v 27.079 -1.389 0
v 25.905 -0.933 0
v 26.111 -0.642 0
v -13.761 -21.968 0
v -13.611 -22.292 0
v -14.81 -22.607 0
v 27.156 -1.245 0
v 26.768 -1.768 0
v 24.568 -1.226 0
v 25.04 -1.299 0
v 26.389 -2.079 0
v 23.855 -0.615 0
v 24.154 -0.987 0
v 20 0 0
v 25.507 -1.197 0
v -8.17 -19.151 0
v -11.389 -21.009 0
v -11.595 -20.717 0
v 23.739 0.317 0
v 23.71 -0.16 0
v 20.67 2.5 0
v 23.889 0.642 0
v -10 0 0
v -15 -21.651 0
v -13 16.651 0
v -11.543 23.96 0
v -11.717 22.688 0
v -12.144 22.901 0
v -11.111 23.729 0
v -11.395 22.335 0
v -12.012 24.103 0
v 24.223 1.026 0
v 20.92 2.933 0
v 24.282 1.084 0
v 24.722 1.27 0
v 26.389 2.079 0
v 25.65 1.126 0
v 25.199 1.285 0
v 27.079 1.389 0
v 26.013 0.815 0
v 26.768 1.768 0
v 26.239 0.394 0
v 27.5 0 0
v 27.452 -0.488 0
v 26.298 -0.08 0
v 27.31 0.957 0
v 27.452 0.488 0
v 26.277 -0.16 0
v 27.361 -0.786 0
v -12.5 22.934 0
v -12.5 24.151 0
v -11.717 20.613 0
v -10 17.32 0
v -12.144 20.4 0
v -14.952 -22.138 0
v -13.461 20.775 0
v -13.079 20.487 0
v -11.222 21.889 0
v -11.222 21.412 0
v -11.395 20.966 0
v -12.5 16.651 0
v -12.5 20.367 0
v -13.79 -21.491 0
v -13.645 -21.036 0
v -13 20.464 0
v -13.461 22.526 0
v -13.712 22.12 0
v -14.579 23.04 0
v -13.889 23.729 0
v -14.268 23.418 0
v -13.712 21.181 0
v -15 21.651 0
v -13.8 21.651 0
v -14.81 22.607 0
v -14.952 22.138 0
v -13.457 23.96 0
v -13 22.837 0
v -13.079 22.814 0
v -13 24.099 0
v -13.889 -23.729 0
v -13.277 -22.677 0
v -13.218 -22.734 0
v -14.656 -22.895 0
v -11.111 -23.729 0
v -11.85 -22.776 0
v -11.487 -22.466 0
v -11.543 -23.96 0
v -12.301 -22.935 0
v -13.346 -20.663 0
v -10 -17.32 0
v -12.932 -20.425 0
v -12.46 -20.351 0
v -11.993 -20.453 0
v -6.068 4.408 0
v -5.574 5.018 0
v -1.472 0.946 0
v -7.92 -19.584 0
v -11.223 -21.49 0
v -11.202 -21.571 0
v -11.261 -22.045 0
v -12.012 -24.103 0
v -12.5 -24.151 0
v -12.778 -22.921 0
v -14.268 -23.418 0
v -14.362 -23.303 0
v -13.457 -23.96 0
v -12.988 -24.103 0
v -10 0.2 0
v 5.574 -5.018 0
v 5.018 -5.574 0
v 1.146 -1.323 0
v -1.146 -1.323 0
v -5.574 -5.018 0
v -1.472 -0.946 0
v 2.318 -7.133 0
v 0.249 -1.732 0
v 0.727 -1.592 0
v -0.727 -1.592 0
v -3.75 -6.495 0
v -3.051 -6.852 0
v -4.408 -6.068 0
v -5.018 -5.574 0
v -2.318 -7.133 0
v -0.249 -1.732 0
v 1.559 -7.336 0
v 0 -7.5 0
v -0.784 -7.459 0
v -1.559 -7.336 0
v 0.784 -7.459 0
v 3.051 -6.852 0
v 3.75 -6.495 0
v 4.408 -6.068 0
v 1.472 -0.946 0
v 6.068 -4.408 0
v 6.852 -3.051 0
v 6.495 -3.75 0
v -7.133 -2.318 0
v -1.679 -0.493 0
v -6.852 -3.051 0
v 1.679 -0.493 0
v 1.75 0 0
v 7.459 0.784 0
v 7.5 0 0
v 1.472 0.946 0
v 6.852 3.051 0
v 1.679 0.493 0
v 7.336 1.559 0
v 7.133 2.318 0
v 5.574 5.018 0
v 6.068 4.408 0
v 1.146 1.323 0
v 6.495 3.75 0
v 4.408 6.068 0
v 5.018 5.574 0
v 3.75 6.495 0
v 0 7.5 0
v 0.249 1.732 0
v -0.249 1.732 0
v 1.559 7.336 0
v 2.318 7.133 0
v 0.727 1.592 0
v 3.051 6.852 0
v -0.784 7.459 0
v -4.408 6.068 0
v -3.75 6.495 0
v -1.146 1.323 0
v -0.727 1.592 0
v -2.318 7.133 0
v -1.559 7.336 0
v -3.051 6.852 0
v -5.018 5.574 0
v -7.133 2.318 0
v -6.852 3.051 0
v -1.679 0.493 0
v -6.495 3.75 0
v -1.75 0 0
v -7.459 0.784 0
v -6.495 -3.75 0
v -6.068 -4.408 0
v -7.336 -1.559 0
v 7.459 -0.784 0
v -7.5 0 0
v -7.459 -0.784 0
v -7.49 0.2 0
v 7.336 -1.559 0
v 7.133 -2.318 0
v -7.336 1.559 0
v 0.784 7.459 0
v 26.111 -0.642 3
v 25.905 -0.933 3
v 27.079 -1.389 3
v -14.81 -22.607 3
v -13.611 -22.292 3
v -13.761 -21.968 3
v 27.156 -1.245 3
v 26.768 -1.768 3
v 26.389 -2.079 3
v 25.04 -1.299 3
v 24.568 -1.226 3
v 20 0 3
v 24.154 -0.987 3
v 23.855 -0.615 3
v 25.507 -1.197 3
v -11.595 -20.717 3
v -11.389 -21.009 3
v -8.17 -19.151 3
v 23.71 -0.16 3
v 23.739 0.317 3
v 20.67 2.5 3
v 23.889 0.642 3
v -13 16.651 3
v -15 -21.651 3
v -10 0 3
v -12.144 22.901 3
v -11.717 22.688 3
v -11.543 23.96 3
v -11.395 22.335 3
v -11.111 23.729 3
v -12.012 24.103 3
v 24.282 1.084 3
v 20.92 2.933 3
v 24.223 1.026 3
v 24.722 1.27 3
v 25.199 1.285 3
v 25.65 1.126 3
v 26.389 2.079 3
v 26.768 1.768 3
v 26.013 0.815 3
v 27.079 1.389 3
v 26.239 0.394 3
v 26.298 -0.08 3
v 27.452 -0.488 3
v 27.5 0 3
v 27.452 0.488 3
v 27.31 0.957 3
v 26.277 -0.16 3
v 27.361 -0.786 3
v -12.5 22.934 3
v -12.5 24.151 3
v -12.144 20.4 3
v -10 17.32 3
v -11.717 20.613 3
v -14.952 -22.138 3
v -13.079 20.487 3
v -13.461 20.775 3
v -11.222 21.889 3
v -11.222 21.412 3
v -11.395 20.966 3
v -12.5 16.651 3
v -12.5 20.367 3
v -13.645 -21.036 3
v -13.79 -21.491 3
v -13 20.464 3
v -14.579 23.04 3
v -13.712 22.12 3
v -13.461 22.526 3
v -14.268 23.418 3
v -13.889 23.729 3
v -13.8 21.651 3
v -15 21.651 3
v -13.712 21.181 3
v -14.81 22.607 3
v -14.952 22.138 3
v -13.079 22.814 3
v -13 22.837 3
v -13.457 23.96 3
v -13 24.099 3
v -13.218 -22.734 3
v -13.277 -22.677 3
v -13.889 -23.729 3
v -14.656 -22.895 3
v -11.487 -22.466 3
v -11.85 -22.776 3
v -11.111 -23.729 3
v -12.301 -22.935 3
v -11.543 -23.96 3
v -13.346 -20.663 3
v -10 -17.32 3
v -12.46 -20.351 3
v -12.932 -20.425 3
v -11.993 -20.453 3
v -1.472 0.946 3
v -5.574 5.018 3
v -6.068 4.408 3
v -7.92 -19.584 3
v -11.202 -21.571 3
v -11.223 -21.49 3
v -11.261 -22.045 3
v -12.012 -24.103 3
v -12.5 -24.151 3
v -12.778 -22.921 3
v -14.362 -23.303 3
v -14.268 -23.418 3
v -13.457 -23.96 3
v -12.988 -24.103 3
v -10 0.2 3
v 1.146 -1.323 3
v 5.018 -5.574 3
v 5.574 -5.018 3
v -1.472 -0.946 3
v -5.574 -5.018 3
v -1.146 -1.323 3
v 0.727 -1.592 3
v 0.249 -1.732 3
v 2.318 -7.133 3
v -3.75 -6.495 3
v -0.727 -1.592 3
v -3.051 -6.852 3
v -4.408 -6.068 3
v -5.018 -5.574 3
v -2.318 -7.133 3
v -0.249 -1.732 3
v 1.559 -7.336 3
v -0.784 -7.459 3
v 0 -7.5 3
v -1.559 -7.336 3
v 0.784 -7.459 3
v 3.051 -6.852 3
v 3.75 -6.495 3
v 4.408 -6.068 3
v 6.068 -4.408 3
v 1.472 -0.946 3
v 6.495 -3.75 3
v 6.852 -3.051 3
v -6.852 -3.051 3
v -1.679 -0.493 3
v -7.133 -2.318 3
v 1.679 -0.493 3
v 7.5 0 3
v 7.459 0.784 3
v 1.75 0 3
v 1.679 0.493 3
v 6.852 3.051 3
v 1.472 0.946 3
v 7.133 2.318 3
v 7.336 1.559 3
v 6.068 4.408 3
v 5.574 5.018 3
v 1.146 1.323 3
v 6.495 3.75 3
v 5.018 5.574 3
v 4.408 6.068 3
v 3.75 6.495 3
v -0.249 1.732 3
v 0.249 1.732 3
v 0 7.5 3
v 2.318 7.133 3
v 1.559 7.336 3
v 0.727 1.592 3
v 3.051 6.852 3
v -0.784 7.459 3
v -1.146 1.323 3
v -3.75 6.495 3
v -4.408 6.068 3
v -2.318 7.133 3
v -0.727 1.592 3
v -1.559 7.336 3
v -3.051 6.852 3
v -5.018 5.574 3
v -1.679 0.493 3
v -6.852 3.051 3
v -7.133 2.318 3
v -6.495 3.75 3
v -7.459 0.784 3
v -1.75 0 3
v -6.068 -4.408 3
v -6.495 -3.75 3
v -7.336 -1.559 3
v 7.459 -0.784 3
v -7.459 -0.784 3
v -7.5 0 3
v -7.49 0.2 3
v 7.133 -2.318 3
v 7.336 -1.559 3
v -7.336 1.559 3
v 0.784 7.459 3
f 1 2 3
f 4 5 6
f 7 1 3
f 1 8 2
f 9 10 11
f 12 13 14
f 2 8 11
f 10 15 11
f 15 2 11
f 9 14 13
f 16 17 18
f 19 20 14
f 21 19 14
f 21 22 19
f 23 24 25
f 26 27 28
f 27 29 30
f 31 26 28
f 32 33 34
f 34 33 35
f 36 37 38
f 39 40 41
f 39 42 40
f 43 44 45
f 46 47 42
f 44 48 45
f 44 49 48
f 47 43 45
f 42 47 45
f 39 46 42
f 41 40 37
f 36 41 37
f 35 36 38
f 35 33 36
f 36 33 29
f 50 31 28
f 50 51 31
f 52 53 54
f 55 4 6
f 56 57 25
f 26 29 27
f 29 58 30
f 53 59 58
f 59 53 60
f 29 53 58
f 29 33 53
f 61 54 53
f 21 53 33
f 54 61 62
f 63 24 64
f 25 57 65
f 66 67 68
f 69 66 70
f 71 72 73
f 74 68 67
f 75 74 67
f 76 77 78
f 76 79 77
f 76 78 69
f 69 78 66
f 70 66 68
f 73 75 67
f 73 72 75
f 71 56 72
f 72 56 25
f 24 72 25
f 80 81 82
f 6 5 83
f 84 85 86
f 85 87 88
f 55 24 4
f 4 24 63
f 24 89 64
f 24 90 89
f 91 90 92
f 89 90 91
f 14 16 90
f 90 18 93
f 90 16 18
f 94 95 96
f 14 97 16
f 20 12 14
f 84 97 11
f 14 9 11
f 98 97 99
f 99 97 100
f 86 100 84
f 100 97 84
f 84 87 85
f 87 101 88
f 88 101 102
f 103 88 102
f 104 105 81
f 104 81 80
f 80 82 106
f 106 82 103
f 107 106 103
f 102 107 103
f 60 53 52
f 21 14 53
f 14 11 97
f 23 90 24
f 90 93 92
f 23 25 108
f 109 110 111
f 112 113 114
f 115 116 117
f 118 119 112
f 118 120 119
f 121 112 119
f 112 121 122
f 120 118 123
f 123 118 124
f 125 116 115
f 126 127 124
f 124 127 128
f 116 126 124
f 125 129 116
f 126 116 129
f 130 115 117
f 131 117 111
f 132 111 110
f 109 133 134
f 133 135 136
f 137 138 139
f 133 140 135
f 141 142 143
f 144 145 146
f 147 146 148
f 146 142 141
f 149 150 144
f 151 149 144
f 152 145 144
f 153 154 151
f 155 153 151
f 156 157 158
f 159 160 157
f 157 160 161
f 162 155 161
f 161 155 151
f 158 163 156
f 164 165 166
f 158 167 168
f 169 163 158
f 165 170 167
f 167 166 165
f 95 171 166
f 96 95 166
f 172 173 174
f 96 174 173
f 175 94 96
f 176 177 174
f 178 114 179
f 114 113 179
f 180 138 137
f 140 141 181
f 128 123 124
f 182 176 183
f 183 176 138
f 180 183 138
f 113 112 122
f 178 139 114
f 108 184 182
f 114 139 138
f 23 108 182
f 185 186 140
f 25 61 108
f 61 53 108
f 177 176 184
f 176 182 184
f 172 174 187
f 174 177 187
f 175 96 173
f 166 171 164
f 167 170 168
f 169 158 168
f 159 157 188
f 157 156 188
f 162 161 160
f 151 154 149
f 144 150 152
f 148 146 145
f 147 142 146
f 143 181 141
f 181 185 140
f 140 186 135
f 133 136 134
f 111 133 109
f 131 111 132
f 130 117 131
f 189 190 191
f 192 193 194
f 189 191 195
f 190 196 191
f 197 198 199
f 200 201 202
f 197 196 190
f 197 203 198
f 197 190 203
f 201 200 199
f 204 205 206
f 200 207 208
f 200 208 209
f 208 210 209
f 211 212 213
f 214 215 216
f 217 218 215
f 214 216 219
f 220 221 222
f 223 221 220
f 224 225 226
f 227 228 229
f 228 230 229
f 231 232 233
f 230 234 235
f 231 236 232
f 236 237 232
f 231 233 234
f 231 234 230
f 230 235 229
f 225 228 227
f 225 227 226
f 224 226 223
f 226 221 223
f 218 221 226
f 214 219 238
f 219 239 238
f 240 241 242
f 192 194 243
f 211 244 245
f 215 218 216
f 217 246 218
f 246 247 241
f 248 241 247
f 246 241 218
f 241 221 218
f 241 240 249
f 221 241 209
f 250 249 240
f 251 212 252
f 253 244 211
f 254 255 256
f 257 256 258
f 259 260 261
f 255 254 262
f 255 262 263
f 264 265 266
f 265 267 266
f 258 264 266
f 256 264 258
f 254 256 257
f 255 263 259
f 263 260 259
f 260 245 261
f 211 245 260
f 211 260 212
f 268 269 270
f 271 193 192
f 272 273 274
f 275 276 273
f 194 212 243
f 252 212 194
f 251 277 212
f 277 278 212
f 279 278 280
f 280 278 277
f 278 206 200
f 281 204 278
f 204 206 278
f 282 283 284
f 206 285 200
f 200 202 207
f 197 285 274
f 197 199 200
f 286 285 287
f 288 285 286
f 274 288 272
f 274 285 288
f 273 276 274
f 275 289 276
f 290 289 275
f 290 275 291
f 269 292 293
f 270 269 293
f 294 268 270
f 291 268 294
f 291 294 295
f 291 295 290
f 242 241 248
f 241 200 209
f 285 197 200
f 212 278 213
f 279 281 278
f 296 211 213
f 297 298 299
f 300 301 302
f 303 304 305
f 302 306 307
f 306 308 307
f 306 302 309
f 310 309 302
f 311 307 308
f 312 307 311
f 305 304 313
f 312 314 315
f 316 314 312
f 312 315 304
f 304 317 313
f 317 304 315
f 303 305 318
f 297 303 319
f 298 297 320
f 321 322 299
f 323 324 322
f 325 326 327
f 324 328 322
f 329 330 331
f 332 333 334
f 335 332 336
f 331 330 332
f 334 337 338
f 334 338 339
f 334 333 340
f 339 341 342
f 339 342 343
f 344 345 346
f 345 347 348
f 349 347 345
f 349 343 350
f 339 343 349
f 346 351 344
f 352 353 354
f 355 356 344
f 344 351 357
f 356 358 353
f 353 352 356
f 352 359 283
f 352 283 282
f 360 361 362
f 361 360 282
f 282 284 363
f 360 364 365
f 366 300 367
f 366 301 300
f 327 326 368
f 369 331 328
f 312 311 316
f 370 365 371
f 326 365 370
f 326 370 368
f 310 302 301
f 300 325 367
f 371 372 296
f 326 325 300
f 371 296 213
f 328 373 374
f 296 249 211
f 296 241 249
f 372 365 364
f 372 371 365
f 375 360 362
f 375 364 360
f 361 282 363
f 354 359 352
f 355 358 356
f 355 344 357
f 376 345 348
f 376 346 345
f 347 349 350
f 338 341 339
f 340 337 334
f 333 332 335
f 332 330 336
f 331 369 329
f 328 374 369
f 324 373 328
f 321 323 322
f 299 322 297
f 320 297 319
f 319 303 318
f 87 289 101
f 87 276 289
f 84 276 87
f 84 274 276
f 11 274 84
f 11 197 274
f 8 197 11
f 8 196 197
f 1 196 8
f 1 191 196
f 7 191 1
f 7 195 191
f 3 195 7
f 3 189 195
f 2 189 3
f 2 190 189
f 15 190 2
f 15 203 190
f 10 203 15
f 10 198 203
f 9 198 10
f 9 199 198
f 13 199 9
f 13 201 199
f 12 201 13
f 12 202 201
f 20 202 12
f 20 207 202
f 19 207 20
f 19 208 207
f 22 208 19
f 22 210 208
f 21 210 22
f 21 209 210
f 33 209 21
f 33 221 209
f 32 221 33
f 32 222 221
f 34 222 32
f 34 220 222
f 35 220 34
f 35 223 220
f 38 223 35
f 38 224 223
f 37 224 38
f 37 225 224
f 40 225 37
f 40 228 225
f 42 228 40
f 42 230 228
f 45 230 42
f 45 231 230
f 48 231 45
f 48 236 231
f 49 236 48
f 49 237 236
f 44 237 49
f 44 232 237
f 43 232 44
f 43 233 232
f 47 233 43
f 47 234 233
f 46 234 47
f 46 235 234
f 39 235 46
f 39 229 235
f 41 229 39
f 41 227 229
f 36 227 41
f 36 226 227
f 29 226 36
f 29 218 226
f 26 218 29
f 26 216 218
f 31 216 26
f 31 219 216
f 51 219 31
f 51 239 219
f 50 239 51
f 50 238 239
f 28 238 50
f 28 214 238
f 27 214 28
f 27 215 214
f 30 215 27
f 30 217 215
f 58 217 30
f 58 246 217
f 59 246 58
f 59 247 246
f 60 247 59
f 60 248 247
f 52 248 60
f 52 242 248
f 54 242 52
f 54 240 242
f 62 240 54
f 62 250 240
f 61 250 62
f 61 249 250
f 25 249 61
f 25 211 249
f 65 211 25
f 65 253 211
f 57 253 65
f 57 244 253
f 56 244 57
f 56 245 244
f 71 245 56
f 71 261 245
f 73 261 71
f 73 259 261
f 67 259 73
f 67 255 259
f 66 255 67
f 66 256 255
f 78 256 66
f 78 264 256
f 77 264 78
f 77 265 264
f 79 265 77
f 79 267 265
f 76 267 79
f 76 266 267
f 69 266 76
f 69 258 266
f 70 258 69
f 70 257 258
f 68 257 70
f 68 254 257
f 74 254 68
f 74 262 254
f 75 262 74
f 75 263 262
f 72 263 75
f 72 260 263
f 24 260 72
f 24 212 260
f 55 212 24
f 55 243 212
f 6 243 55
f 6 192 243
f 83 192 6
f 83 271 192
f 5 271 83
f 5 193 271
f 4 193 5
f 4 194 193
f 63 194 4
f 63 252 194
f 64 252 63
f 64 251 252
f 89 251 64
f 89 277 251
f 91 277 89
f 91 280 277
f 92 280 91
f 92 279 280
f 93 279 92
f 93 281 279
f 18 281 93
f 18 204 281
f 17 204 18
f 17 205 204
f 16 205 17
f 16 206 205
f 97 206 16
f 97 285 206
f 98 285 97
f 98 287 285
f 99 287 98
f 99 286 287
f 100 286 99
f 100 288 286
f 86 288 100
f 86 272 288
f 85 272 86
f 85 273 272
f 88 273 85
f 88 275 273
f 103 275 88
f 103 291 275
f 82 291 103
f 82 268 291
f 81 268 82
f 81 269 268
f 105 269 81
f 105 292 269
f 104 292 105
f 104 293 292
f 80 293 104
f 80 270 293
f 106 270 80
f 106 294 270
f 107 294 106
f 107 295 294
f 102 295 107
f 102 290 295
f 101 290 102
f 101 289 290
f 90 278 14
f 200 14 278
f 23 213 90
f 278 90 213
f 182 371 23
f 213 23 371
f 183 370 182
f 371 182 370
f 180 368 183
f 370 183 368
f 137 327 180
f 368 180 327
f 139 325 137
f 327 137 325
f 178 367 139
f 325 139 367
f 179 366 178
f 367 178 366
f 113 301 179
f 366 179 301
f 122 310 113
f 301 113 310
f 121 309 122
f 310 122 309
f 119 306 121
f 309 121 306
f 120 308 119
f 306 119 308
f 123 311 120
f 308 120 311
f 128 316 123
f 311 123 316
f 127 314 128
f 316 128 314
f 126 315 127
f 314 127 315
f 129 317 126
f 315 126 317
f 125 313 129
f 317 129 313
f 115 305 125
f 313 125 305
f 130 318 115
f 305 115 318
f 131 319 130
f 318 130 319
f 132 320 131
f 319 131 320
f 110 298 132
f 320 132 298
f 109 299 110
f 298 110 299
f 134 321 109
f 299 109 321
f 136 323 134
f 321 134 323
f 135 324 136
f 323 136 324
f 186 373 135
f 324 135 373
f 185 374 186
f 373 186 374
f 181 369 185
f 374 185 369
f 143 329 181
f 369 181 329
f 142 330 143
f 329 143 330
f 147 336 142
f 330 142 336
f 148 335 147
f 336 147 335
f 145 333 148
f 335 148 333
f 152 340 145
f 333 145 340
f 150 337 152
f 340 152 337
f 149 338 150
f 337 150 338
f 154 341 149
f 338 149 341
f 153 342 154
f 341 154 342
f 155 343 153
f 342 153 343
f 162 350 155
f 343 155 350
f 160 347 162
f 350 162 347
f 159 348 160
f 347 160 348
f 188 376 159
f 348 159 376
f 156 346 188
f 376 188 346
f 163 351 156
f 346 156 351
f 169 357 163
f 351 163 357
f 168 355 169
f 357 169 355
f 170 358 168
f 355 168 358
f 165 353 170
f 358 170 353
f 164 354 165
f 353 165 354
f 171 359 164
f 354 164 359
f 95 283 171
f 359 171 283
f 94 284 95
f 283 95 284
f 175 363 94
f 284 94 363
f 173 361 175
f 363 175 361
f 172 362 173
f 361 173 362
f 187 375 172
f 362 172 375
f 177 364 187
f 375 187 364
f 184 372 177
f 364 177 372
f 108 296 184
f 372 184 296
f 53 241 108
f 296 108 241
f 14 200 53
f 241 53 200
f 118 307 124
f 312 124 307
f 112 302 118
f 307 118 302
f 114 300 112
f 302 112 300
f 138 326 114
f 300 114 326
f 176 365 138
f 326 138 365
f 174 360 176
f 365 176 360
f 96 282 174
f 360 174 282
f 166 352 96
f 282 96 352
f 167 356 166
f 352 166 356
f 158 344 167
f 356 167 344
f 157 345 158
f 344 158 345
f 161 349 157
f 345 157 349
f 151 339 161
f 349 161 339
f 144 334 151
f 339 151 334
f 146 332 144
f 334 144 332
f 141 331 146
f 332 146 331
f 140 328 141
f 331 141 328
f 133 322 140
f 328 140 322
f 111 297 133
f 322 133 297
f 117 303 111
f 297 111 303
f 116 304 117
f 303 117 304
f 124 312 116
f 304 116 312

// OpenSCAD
$fa=6;
$fs=.5;

module spacer()difference(){
	circle(d=15);
	circle(d=3.5);
}


module stand(a=50,d=5)difference(){
    minkowski(){
        circle(d=a,$fn=3);
        circle(d=d);
    }
    circle(d=a-2*d,$fn=3);
    for(i=[0:2])rotate(i*120)translate([a/2,0,0])rotate(60){
        circle(d=2.6);
        translate([0,-5])square([0.5,10]);
    }
}
    

module print(){
	linear_extrude(3){spacer();stand();translate([-10,0])square([8,.2]);}
}
print();
